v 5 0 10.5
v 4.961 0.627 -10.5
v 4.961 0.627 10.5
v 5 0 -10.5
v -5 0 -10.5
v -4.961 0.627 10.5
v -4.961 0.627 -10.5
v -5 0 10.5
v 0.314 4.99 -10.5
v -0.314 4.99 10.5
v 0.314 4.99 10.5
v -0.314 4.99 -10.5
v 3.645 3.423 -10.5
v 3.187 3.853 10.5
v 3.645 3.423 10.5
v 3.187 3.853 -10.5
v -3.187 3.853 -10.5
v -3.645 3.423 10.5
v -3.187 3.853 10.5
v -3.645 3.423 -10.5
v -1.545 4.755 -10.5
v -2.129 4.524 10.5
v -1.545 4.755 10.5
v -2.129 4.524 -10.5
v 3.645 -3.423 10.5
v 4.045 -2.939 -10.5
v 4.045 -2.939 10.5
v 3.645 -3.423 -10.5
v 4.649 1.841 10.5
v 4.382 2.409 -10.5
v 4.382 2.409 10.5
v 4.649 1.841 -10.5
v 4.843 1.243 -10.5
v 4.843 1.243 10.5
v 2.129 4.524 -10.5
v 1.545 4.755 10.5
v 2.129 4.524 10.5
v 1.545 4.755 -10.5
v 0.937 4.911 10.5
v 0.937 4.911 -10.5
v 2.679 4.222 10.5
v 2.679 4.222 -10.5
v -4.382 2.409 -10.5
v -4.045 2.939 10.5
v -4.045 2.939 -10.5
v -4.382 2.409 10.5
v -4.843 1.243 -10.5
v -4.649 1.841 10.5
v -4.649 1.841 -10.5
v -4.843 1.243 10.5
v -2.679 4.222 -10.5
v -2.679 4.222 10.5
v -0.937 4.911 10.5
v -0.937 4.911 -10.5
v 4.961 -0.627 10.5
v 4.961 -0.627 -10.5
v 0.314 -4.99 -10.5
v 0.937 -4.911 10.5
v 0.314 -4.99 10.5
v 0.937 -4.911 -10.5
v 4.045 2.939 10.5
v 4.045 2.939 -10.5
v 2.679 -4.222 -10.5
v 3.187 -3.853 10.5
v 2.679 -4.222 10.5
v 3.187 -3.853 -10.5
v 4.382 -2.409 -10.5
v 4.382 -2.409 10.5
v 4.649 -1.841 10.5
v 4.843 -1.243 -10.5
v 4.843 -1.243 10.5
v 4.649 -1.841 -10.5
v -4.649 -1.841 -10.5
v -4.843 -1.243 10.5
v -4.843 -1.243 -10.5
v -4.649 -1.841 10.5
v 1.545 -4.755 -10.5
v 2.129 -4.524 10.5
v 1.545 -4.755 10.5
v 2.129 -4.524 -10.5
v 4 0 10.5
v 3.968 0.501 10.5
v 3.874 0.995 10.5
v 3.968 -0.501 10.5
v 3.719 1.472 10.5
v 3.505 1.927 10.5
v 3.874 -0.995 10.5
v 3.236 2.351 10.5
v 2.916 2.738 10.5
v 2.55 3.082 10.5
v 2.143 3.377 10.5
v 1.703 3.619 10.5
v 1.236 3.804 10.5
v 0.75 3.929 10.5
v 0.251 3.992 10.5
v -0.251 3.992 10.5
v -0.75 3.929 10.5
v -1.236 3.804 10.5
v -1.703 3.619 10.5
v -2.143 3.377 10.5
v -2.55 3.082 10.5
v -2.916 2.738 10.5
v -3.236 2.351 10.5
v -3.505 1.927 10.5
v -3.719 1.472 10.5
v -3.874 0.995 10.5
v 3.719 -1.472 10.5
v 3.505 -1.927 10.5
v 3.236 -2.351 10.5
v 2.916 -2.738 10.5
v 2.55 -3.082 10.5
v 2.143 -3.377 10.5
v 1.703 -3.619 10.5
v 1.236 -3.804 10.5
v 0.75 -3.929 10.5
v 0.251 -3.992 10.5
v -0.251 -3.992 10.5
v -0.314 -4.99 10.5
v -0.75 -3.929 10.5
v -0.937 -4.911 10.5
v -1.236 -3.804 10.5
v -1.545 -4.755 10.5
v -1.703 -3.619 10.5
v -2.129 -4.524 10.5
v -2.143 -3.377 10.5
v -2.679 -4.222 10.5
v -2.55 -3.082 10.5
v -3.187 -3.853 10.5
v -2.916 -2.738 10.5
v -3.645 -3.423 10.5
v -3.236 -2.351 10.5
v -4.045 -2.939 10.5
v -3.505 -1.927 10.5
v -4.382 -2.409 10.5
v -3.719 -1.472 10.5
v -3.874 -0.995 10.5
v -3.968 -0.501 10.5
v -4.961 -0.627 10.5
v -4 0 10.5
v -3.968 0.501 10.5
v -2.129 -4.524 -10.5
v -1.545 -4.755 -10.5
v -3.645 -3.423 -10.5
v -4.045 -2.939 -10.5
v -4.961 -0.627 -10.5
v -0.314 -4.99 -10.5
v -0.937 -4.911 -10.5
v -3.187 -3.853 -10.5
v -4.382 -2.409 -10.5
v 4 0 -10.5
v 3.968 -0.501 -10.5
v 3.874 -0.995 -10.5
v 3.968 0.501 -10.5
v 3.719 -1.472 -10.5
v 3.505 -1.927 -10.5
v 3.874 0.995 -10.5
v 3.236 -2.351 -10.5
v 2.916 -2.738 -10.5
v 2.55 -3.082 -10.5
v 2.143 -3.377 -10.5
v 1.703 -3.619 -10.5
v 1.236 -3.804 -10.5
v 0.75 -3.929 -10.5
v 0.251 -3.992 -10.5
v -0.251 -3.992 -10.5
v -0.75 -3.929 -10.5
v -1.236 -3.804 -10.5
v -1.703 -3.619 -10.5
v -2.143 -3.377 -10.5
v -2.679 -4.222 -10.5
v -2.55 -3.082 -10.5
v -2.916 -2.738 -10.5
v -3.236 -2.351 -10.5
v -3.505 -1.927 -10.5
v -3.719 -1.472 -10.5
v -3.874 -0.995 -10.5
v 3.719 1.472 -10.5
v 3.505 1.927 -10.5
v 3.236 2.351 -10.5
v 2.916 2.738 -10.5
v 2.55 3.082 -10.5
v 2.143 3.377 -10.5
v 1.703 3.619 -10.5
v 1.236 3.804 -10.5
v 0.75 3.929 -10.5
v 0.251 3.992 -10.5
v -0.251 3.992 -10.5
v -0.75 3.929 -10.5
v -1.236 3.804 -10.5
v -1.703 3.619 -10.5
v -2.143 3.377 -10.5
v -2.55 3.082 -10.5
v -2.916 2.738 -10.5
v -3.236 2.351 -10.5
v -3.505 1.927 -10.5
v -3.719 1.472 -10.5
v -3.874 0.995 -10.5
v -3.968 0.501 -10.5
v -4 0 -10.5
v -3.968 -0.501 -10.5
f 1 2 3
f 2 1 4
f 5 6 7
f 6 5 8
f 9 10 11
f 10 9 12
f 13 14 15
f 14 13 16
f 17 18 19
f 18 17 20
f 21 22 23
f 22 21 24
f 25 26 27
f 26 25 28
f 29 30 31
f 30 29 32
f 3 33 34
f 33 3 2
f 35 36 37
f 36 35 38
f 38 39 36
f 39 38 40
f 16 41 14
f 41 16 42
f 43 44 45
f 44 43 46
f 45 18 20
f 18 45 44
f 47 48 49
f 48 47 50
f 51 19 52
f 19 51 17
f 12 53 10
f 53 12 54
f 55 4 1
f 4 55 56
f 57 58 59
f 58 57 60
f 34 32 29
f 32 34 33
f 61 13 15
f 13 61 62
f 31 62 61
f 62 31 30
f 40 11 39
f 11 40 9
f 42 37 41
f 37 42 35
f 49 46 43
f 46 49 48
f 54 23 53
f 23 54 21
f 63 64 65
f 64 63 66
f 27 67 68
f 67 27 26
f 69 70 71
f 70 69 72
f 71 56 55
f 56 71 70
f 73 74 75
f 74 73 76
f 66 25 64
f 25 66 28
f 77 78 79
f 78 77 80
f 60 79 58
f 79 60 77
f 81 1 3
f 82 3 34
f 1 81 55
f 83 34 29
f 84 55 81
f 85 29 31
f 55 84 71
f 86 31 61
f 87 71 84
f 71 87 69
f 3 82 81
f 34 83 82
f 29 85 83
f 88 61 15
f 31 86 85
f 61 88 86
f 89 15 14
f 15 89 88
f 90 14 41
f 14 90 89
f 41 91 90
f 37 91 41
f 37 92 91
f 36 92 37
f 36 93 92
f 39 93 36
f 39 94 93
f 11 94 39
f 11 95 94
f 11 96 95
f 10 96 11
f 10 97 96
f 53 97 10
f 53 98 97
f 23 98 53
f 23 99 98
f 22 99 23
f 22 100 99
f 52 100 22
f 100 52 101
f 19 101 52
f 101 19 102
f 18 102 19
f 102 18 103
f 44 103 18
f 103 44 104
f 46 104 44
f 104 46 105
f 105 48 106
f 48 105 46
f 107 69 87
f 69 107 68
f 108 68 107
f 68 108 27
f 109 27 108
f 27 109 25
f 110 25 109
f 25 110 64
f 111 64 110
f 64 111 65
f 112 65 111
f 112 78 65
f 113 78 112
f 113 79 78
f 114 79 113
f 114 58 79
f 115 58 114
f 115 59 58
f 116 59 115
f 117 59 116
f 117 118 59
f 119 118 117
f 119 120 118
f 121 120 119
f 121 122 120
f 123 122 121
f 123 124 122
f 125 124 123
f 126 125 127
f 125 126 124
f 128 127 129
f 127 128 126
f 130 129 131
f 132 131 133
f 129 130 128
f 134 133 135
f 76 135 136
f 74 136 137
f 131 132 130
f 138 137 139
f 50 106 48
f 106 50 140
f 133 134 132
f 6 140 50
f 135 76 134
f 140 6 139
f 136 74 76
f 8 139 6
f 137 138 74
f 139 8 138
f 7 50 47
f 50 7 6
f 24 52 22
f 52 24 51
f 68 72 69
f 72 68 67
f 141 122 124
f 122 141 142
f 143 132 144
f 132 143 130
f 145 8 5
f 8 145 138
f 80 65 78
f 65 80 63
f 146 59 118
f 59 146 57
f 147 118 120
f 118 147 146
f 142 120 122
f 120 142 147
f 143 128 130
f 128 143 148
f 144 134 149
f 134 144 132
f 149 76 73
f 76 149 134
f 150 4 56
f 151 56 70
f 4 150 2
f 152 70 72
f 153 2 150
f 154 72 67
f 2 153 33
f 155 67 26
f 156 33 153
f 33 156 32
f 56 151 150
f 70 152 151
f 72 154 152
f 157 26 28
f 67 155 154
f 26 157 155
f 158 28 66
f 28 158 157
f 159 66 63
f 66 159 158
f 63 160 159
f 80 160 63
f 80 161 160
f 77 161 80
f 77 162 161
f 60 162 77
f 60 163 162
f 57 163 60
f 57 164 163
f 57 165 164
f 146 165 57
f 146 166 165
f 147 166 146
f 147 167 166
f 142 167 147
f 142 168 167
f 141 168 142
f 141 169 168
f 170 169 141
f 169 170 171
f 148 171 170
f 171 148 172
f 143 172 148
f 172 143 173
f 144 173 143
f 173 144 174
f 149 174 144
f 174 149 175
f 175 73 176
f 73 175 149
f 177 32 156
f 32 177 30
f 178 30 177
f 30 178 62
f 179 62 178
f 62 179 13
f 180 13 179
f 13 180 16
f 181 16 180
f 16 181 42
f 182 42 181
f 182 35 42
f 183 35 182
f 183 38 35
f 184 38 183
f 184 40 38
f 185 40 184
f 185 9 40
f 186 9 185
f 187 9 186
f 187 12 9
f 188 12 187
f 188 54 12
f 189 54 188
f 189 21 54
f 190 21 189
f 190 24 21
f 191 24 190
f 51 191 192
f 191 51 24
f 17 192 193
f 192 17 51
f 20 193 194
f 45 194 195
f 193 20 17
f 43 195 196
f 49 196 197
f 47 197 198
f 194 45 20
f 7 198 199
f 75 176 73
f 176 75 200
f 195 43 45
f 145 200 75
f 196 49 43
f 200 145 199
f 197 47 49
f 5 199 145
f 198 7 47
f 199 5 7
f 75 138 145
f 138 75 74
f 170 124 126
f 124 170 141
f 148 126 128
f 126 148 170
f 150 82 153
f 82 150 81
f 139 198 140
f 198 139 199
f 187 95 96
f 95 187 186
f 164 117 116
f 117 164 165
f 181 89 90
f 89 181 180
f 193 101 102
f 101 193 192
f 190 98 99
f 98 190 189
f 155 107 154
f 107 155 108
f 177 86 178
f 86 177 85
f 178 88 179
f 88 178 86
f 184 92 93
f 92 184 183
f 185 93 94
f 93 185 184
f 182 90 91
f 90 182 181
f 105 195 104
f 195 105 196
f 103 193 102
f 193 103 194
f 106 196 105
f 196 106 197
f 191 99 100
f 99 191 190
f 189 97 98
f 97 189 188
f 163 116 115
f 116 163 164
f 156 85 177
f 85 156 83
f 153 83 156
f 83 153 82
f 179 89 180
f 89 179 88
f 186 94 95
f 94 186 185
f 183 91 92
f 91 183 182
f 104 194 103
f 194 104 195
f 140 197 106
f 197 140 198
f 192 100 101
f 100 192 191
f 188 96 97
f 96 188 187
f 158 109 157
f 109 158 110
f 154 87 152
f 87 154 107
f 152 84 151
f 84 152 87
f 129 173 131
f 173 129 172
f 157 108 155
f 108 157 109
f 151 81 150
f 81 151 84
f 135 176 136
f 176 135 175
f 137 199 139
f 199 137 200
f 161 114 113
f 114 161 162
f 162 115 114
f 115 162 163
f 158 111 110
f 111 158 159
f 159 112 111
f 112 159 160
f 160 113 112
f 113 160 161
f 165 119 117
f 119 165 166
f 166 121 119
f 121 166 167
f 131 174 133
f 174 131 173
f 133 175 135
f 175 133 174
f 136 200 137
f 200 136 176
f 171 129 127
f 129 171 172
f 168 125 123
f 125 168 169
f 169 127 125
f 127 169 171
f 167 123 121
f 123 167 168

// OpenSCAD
$fn = 50;


difference() {
	union() {
		translate(v = [0, 0, -10.5000000000]) {
			cylinder(h = 21, r = 5.0000000000);
		}
	}
	union() {
		translate(v = [0, 0, -100.0000000000]) {
			cylinder(h = 200, r = 4.0000000000);
		}
	}
}
